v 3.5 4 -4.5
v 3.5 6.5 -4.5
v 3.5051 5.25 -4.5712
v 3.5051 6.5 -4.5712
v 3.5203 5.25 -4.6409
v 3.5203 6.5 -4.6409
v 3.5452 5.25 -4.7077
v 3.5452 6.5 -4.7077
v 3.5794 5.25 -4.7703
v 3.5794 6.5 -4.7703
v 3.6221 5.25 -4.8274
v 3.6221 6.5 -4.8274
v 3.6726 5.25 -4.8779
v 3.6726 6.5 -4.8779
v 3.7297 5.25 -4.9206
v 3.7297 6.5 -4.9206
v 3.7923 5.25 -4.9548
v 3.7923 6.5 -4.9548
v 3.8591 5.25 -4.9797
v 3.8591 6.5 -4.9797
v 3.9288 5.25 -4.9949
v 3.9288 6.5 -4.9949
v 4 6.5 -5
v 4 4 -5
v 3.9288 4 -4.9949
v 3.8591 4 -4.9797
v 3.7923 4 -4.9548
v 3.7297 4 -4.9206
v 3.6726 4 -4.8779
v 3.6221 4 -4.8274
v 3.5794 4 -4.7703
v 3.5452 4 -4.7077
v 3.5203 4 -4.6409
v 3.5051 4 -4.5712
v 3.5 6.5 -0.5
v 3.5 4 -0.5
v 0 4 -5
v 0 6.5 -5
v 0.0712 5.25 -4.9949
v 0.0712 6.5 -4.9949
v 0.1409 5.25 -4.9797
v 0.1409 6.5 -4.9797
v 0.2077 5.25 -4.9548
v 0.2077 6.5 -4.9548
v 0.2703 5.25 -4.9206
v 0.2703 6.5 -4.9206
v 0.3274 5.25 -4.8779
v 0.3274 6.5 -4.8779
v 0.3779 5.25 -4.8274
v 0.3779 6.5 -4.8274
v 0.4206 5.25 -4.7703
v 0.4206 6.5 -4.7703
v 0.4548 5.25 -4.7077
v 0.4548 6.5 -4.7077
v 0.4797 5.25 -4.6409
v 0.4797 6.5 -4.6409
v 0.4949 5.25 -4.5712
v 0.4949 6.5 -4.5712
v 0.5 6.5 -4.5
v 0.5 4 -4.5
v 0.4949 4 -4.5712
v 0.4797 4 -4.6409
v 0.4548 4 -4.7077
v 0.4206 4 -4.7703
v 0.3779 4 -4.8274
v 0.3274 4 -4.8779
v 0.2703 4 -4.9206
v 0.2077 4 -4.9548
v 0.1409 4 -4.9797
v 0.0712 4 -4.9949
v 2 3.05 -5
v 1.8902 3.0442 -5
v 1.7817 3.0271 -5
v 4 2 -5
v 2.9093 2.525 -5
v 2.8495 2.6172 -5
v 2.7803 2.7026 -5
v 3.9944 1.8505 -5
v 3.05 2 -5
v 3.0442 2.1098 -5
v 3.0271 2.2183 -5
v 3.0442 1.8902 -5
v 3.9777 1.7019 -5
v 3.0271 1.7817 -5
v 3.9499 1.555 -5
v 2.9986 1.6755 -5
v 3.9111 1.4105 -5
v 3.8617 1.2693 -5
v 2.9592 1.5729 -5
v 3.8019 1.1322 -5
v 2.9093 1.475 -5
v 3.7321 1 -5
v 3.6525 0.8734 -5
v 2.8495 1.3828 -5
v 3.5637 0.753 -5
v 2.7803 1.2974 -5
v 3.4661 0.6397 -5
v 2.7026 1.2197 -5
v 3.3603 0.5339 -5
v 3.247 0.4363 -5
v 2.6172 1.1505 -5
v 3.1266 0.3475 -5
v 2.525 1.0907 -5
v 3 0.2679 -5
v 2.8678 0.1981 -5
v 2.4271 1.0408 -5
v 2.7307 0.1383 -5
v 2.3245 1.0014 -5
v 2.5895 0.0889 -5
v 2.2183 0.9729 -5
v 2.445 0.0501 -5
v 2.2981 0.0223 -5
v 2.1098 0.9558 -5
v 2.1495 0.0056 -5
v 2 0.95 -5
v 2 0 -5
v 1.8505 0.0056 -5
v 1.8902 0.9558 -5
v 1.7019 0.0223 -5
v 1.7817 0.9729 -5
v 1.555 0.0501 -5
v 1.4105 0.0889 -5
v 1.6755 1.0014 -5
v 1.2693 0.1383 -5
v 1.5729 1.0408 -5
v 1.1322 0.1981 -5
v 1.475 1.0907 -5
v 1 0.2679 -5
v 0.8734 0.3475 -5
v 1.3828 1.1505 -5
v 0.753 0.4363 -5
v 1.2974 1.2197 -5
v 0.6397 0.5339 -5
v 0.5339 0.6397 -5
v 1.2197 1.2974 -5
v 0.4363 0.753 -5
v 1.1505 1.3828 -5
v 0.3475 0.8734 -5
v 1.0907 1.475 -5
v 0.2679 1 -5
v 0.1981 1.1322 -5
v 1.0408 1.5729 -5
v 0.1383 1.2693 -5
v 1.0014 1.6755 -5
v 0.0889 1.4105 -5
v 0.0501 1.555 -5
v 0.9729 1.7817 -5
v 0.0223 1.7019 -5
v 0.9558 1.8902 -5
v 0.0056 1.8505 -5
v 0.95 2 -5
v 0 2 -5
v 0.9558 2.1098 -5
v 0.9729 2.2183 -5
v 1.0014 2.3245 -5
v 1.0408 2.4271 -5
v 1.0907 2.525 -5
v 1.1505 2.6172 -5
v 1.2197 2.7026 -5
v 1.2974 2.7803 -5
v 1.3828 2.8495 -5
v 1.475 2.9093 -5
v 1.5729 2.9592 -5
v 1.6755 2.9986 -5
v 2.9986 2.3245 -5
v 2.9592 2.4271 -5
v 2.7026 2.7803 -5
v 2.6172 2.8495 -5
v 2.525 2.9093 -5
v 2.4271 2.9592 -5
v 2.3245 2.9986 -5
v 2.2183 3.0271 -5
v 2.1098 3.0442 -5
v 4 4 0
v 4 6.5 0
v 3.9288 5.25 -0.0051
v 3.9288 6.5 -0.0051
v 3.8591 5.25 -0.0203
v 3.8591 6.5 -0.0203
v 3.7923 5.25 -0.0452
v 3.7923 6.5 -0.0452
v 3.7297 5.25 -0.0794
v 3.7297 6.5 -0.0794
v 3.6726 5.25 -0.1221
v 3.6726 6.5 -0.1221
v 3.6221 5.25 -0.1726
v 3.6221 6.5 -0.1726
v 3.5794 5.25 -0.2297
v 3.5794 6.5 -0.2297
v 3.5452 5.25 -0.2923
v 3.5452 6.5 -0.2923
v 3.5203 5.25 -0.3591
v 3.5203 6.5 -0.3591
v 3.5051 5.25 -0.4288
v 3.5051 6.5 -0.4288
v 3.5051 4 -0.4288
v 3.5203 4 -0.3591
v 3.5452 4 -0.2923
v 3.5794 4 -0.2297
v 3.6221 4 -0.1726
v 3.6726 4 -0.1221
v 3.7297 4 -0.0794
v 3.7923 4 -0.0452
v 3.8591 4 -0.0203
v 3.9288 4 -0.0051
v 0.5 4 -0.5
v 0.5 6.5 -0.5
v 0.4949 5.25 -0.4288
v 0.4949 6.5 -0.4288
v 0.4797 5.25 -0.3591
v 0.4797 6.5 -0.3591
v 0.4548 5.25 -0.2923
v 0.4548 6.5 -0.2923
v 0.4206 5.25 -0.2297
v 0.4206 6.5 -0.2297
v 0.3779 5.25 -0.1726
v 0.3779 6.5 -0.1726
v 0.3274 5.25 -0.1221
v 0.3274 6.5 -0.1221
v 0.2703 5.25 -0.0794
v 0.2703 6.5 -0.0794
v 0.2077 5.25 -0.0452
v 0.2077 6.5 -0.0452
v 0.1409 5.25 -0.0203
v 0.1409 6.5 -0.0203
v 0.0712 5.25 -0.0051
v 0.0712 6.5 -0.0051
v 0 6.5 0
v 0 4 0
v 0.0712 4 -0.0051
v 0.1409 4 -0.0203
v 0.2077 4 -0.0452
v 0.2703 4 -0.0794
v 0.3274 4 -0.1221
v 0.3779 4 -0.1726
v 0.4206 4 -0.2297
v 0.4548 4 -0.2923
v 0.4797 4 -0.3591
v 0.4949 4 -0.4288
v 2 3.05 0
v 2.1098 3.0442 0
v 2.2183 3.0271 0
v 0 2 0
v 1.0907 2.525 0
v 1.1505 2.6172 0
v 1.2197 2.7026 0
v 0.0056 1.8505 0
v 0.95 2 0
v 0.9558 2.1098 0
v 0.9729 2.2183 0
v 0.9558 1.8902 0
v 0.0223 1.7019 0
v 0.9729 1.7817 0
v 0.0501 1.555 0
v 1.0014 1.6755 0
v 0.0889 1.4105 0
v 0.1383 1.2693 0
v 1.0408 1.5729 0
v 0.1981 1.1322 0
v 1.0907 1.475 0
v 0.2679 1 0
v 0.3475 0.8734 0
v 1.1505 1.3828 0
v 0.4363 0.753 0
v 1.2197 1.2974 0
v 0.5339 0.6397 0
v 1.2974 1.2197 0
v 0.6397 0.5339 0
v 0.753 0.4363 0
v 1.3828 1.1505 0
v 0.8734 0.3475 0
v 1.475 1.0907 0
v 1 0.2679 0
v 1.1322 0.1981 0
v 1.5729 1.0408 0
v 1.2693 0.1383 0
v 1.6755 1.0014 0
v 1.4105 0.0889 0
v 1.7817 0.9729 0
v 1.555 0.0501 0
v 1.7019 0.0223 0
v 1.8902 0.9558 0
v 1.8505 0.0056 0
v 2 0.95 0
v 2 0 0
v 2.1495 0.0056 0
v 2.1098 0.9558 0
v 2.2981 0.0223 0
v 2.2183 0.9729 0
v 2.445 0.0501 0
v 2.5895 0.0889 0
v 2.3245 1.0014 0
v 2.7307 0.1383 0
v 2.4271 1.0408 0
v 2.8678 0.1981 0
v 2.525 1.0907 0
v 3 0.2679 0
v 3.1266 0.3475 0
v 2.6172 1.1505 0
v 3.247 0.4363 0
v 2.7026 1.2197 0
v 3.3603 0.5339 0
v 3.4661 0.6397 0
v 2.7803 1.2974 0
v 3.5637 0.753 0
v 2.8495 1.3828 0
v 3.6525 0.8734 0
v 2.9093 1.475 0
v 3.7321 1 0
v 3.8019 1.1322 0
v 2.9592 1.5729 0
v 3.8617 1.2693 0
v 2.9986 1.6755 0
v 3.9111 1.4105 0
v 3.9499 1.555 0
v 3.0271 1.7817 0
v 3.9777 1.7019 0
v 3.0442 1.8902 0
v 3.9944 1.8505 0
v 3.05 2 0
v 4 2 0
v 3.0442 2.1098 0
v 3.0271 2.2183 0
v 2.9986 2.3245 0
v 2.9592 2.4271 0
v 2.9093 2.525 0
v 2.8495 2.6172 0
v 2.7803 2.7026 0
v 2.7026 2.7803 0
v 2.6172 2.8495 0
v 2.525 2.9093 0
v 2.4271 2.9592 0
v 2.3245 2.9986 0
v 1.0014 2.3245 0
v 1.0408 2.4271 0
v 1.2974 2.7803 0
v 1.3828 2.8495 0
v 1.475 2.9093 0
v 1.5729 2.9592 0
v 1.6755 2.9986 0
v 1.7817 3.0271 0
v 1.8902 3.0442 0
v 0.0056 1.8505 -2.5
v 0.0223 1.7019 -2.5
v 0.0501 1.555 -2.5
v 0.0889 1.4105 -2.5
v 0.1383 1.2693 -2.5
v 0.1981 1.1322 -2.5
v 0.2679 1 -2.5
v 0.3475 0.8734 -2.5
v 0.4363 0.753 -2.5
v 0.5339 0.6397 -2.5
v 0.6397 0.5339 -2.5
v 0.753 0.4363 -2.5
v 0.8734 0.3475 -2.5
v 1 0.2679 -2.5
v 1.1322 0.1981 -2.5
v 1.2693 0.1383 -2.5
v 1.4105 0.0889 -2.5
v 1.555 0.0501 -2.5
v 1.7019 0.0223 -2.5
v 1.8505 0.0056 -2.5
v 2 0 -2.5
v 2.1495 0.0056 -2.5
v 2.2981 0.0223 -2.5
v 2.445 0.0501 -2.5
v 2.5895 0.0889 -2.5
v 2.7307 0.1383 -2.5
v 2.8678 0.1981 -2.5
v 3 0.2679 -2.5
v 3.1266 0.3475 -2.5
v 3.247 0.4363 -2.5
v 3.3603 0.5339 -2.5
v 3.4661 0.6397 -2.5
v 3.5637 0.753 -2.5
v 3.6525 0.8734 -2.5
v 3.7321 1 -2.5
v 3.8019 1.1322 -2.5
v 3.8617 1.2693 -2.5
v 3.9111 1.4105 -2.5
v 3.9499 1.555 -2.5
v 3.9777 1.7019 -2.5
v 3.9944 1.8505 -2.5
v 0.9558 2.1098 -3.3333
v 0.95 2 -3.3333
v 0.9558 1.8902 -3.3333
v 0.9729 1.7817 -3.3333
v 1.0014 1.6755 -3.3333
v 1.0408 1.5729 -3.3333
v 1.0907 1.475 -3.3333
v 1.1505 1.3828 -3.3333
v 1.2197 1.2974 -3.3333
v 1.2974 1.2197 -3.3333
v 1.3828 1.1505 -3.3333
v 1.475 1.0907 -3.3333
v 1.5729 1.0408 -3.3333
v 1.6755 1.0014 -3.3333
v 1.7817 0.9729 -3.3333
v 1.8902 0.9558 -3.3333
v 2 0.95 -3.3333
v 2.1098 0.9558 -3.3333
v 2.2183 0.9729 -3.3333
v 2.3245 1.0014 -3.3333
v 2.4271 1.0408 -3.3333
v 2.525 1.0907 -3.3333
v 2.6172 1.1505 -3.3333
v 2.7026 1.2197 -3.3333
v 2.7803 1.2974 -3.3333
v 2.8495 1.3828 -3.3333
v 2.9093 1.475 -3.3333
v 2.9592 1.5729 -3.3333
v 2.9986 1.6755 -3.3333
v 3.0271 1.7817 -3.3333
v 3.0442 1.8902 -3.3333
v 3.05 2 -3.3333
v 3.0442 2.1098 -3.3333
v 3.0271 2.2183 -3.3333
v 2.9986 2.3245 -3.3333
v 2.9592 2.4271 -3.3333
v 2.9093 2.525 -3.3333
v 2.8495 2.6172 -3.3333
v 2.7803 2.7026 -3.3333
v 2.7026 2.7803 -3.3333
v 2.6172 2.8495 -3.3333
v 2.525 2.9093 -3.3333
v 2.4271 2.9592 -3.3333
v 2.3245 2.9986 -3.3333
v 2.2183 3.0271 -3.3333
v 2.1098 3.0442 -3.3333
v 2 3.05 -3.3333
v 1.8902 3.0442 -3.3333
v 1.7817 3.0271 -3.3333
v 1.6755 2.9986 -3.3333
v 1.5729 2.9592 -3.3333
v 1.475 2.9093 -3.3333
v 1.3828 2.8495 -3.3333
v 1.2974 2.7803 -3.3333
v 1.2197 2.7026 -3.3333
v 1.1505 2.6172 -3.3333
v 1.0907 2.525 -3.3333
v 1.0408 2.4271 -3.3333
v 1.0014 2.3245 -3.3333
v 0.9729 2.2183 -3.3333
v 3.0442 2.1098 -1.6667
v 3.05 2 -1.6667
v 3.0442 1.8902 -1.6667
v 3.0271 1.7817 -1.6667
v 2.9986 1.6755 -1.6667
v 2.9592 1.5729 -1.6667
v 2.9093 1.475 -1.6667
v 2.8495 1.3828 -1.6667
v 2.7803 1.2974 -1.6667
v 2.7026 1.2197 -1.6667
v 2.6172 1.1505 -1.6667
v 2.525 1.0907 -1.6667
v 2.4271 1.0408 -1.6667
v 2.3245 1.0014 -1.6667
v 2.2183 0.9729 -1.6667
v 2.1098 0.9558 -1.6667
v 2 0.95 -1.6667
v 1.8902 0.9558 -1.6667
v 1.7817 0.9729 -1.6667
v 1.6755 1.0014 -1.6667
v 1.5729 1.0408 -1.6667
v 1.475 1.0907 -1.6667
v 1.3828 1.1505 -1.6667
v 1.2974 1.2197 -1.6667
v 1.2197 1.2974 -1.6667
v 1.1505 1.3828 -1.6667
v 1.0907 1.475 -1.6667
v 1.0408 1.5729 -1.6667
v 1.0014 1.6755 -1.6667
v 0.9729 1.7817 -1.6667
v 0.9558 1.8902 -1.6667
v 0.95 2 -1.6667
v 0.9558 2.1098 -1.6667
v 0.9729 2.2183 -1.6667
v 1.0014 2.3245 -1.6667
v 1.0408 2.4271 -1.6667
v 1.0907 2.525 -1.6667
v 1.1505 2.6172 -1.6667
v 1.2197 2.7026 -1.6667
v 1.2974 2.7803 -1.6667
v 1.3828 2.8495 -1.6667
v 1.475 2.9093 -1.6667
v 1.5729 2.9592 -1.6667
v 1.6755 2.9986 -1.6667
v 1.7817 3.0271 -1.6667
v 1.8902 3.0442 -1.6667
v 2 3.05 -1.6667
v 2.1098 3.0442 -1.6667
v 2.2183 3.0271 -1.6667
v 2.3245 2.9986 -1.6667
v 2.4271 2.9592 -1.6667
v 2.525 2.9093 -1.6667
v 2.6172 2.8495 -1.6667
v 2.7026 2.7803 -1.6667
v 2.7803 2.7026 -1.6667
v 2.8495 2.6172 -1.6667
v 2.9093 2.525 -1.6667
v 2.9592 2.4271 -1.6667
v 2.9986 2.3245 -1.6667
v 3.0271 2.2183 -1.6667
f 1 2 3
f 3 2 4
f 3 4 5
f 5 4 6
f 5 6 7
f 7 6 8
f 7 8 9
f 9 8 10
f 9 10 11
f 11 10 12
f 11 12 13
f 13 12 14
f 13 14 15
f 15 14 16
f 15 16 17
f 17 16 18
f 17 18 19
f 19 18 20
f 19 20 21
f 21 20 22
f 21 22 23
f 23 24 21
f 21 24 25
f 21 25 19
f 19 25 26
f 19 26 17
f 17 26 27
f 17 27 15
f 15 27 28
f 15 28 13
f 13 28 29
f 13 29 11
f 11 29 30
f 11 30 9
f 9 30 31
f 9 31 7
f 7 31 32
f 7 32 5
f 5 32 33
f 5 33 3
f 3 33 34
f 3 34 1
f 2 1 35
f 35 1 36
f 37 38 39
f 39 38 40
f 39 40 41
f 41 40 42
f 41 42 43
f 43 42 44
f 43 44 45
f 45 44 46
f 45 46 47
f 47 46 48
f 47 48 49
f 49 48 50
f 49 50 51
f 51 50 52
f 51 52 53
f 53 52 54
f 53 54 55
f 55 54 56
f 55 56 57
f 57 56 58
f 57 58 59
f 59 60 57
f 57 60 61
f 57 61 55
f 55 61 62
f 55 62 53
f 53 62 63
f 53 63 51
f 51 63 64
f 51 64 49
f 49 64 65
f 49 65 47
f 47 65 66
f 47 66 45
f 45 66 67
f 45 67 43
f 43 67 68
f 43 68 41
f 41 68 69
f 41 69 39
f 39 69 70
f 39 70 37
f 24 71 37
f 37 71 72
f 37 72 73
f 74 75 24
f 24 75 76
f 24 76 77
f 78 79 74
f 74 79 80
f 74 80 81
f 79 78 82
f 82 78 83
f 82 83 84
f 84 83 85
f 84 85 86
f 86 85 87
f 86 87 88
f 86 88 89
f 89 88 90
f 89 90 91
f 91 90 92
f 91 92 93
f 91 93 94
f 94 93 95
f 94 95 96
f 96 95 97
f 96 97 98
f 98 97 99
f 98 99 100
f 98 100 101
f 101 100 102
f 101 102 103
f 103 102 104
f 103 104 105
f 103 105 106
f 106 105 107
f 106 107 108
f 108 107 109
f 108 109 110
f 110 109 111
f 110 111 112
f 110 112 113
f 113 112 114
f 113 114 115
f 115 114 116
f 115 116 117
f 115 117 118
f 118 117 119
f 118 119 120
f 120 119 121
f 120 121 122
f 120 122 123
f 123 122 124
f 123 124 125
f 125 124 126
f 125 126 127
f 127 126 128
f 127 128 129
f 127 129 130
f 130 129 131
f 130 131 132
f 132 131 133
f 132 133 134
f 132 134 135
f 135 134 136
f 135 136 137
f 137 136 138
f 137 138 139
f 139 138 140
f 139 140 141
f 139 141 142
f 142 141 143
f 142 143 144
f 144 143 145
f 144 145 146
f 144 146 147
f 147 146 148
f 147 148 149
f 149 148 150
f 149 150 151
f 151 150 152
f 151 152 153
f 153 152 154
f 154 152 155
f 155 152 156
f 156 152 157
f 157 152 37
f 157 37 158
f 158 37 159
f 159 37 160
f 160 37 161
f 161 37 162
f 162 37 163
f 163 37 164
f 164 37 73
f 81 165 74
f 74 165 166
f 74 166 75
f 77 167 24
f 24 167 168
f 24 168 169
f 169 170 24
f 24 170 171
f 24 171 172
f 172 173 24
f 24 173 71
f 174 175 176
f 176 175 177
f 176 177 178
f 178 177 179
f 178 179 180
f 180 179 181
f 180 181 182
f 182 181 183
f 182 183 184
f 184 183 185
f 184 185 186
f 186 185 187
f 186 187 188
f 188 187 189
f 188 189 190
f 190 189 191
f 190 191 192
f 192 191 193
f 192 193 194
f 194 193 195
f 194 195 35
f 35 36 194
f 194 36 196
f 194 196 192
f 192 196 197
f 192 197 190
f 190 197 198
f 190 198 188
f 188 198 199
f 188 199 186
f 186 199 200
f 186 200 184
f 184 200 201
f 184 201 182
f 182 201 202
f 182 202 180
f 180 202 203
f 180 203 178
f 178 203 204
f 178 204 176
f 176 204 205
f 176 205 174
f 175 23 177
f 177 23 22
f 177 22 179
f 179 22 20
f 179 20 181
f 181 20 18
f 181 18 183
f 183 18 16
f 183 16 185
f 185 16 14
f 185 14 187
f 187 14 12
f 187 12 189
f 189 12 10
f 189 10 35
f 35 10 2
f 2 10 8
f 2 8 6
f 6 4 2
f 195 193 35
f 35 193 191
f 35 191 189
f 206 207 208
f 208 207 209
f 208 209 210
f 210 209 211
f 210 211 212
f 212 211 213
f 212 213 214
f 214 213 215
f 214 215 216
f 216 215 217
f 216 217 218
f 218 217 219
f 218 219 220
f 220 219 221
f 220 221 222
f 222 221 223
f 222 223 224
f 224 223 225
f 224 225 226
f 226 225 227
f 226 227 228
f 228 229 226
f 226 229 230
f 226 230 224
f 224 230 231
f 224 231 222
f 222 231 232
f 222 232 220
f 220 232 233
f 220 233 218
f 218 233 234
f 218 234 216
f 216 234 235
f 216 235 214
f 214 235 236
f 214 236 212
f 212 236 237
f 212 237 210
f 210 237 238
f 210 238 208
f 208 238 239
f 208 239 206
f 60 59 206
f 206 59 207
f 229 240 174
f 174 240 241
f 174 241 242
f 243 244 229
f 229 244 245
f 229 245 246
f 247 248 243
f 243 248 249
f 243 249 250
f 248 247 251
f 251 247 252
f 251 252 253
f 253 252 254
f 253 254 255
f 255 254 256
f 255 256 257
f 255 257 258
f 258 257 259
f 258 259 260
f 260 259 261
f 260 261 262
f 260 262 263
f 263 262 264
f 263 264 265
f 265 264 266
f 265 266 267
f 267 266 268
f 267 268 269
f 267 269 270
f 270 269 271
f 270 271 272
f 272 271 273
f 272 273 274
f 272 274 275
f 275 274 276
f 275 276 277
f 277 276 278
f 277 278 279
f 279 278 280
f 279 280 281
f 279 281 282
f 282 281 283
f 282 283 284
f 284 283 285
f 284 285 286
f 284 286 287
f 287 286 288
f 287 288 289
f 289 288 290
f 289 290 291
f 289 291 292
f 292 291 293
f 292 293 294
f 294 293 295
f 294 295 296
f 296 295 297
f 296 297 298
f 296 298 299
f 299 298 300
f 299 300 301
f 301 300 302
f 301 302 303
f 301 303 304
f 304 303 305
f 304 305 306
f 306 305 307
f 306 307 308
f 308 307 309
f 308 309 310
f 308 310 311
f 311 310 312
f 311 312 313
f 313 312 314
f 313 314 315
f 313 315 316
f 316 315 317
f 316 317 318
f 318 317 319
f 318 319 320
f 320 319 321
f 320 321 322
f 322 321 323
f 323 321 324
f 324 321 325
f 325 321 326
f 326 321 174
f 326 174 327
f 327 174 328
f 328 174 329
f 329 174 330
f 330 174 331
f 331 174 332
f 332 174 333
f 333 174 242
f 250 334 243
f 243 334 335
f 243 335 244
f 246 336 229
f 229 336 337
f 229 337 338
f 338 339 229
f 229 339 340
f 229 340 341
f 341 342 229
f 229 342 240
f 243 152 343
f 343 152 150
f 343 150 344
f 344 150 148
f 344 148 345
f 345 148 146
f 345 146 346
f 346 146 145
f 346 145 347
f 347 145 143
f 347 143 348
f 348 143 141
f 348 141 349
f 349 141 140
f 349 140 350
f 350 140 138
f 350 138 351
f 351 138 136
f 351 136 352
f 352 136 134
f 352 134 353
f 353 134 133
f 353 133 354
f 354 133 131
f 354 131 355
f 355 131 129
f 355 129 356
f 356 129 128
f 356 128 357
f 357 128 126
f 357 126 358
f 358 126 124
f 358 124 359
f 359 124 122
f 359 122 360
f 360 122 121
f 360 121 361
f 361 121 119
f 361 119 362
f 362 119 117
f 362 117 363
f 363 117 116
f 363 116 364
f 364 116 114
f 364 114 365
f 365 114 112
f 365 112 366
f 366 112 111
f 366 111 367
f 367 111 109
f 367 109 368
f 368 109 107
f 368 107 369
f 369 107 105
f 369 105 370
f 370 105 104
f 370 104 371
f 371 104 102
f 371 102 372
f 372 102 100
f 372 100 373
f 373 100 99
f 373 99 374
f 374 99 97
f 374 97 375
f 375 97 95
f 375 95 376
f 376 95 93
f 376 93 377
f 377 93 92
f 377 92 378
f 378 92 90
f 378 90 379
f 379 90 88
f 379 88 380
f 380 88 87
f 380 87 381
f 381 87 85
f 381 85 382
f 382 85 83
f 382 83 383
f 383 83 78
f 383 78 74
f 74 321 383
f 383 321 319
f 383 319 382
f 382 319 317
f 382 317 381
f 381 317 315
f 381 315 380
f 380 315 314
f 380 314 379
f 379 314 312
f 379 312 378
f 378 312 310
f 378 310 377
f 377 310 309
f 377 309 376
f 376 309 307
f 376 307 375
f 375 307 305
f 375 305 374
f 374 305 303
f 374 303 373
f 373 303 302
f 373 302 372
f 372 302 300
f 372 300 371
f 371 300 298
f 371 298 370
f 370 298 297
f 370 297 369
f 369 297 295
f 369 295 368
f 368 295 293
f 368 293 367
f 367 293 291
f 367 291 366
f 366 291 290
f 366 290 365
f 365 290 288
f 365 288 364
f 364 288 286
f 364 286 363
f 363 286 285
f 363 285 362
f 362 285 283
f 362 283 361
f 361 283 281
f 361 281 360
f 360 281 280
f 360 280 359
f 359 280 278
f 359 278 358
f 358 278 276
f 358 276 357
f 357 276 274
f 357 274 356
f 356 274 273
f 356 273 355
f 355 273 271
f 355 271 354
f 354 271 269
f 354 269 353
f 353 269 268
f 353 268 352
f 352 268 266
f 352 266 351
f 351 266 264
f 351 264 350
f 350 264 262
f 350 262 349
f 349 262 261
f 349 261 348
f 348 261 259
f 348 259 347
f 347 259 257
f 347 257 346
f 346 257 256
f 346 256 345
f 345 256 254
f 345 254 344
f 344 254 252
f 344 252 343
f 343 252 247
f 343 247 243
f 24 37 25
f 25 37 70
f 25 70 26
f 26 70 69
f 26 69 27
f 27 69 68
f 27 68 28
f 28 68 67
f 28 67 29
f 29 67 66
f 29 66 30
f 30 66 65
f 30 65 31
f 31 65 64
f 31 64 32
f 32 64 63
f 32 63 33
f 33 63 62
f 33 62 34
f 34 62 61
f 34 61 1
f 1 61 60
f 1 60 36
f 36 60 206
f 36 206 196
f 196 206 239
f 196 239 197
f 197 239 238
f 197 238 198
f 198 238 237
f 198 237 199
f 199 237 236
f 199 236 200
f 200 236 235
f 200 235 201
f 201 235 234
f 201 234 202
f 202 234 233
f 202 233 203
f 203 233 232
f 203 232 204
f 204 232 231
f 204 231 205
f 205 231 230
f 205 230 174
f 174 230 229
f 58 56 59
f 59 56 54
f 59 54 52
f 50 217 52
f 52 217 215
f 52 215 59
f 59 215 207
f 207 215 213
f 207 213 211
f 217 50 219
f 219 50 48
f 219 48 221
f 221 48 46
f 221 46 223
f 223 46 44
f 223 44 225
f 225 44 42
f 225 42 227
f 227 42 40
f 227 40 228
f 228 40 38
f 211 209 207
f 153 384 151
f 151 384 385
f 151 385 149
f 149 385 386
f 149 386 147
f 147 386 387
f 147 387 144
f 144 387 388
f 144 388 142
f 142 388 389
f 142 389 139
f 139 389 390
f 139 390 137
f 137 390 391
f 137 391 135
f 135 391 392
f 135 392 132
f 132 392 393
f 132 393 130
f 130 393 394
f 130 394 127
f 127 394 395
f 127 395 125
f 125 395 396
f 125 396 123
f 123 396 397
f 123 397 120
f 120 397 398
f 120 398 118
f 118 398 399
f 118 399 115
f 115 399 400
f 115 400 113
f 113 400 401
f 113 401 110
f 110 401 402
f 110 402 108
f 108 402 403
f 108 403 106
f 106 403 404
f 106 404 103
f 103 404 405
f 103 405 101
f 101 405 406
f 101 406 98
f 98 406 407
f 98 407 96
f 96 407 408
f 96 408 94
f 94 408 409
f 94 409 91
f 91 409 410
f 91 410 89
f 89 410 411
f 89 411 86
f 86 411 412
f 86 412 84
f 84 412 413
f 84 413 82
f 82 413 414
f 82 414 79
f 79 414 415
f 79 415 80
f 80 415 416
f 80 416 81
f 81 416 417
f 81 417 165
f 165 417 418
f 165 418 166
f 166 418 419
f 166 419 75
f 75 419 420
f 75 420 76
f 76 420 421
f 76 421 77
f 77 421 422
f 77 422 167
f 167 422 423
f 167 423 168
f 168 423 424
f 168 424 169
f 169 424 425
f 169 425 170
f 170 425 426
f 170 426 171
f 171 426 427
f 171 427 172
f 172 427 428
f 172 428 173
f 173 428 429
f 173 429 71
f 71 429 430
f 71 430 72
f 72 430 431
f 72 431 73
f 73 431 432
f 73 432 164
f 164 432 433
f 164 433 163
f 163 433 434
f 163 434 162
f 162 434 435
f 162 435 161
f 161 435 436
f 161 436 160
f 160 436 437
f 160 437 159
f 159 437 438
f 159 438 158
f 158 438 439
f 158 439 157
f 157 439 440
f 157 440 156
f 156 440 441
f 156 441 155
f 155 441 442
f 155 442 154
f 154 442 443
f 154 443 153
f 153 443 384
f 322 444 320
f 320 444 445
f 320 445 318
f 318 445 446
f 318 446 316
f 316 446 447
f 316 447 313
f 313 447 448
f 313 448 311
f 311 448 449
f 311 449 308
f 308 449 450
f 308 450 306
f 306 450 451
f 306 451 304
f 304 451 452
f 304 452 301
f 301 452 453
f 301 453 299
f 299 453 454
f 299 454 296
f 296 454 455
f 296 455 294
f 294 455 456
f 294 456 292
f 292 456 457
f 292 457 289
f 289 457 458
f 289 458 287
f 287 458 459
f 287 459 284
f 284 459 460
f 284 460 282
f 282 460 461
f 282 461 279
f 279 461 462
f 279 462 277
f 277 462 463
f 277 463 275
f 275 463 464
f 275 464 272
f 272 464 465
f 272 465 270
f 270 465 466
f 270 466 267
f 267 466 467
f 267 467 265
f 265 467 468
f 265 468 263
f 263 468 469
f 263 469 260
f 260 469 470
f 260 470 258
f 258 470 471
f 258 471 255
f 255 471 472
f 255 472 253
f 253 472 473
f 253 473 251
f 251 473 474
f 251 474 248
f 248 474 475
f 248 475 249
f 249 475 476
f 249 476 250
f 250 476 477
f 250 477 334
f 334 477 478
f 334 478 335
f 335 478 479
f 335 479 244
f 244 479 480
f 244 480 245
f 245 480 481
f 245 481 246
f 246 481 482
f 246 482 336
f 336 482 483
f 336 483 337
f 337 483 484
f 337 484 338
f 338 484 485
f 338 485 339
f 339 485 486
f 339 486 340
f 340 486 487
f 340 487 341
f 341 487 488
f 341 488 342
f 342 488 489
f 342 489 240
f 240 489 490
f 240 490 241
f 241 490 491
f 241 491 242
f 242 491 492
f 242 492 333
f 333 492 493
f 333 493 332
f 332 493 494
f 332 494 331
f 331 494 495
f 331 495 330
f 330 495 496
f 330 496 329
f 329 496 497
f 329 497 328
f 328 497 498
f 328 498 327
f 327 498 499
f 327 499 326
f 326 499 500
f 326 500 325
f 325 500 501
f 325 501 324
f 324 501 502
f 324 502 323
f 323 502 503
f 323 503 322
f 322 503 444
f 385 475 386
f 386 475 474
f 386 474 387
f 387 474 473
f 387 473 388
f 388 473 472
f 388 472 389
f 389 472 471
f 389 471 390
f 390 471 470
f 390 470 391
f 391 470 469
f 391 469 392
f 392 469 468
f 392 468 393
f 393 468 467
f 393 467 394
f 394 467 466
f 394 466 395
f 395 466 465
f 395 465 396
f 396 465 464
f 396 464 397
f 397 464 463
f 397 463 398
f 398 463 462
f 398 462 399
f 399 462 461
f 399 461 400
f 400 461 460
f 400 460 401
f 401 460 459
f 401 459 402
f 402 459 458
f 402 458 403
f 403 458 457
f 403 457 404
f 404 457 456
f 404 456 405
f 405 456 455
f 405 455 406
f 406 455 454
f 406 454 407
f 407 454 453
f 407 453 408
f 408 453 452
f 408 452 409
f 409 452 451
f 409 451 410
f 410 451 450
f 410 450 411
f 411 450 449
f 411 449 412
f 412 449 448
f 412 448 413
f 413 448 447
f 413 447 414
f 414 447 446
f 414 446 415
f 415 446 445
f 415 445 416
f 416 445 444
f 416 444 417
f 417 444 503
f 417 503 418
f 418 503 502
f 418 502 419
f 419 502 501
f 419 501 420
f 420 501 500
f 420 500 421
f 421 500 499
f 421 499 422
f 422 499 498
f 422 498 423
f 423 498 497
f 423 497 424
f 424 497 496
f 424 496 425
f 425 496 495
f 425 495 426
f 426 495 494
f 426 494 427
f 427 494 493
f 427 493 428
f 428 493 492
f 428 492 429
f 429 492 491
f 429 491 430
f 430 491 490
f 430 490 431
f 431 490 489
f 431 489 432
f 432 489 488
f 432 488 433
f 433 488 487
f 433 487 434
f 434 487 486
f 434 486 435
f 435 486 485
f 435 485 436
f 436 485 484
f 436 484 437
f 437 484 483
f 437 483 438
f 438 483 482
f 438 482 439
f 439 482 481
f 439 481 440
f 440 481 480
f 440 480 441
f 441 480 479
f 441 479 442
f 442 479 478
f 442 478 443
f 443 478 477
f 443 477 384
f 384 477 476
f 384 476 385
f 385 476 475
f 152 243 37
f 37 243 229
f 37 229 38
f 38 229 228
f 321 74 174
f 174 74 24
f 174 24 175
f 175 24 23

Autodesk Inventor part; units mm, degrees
ref_plane "YZ Plane" through (0, 0, 0) normal (1, 0, 0) x (0, 1, 0)
ref_plane "XZ Plane" through (0, 0, 0) normal (0, 1, 0) x (-1, 0, 0)
ref_plane "XY Plane" through (0, 0, 0) normal (0, 0, 1) x (1, 0, 0)
sketch "スケッチ1" plane through (0, 0, 0) normal (0, 1, 0) x (-1, 0, 0)
  line L0 (0, 0) -> (-4, 0)
  line L1 (-4, 0) -> (-4, -5)
  line L2 (-4, -5) -> (0, -5)
  line L3 (0, -5) -> (0, 0)
  dimension "d0" = 4
  dimension "d1" = 5
extrude "押し出し1" add sketch "スケッチ1" along normal blind 6.5
sketch "スケッチ2" plane through (0, 0, 0) normal (0, 0, 1) x (1, 0, 0)
  line L0 (0, 0) -> (4, 0) projected
  line L1 (0, 0) -> (0, 6.5) projected
  point P0 (2, 2)
  dimension "d11" = 2
  dimension "d12" = 2
hole "穴1" at (2, 2, 0) direction (0, 0, -1) diameter 2.1 end through all
sketch "スケッチ3" plane through (0, 0, 0) normal (0, 0, 1) x (1, 0, 0)
  line L0 (0.5, 6.5) -> (3.5, 6.5)
  line L1 (3.5, 6.5) -> (3.5, 4)
  line L2 (3.5, 4) -> (0.5, 4)
  line L3 (0.5, 4) -> (0.5, 6.5)
  line L4 (0.5, 6.5) -> (3.5, 4) construction
  line L5 (3.5, 6.5) -> (0.5, 4) construction
  line L6 (0, 0) -> (0, 6.5) projected
  line L7 (0, 6.5) -> (4, 6.5) projected
  point P0 (2, 5.25)
  dimension "d13" = 3
  dimension "d14" = 2.5
  dimension "d15" = 2
  dimension "d16" = 0
extrude "押し出し2" cut sketch "スケッチ3" against normal through all
fillet "フィレット1" radius 2 2 edges at (4, 0, -2.5) (0, 0, -2.5)
fillet "フィレット2" radius 0.5 4 edges at (0.5, 5.25, 0) (3.5, 5.25, 0) (0.5, 5.25, -5) (3.5, 5.25, -5)
equation "\"d12\" = 0.5 * d0"
equation "\"d15\" = 0.5 * d0"
properties part number "gomu_guide"
